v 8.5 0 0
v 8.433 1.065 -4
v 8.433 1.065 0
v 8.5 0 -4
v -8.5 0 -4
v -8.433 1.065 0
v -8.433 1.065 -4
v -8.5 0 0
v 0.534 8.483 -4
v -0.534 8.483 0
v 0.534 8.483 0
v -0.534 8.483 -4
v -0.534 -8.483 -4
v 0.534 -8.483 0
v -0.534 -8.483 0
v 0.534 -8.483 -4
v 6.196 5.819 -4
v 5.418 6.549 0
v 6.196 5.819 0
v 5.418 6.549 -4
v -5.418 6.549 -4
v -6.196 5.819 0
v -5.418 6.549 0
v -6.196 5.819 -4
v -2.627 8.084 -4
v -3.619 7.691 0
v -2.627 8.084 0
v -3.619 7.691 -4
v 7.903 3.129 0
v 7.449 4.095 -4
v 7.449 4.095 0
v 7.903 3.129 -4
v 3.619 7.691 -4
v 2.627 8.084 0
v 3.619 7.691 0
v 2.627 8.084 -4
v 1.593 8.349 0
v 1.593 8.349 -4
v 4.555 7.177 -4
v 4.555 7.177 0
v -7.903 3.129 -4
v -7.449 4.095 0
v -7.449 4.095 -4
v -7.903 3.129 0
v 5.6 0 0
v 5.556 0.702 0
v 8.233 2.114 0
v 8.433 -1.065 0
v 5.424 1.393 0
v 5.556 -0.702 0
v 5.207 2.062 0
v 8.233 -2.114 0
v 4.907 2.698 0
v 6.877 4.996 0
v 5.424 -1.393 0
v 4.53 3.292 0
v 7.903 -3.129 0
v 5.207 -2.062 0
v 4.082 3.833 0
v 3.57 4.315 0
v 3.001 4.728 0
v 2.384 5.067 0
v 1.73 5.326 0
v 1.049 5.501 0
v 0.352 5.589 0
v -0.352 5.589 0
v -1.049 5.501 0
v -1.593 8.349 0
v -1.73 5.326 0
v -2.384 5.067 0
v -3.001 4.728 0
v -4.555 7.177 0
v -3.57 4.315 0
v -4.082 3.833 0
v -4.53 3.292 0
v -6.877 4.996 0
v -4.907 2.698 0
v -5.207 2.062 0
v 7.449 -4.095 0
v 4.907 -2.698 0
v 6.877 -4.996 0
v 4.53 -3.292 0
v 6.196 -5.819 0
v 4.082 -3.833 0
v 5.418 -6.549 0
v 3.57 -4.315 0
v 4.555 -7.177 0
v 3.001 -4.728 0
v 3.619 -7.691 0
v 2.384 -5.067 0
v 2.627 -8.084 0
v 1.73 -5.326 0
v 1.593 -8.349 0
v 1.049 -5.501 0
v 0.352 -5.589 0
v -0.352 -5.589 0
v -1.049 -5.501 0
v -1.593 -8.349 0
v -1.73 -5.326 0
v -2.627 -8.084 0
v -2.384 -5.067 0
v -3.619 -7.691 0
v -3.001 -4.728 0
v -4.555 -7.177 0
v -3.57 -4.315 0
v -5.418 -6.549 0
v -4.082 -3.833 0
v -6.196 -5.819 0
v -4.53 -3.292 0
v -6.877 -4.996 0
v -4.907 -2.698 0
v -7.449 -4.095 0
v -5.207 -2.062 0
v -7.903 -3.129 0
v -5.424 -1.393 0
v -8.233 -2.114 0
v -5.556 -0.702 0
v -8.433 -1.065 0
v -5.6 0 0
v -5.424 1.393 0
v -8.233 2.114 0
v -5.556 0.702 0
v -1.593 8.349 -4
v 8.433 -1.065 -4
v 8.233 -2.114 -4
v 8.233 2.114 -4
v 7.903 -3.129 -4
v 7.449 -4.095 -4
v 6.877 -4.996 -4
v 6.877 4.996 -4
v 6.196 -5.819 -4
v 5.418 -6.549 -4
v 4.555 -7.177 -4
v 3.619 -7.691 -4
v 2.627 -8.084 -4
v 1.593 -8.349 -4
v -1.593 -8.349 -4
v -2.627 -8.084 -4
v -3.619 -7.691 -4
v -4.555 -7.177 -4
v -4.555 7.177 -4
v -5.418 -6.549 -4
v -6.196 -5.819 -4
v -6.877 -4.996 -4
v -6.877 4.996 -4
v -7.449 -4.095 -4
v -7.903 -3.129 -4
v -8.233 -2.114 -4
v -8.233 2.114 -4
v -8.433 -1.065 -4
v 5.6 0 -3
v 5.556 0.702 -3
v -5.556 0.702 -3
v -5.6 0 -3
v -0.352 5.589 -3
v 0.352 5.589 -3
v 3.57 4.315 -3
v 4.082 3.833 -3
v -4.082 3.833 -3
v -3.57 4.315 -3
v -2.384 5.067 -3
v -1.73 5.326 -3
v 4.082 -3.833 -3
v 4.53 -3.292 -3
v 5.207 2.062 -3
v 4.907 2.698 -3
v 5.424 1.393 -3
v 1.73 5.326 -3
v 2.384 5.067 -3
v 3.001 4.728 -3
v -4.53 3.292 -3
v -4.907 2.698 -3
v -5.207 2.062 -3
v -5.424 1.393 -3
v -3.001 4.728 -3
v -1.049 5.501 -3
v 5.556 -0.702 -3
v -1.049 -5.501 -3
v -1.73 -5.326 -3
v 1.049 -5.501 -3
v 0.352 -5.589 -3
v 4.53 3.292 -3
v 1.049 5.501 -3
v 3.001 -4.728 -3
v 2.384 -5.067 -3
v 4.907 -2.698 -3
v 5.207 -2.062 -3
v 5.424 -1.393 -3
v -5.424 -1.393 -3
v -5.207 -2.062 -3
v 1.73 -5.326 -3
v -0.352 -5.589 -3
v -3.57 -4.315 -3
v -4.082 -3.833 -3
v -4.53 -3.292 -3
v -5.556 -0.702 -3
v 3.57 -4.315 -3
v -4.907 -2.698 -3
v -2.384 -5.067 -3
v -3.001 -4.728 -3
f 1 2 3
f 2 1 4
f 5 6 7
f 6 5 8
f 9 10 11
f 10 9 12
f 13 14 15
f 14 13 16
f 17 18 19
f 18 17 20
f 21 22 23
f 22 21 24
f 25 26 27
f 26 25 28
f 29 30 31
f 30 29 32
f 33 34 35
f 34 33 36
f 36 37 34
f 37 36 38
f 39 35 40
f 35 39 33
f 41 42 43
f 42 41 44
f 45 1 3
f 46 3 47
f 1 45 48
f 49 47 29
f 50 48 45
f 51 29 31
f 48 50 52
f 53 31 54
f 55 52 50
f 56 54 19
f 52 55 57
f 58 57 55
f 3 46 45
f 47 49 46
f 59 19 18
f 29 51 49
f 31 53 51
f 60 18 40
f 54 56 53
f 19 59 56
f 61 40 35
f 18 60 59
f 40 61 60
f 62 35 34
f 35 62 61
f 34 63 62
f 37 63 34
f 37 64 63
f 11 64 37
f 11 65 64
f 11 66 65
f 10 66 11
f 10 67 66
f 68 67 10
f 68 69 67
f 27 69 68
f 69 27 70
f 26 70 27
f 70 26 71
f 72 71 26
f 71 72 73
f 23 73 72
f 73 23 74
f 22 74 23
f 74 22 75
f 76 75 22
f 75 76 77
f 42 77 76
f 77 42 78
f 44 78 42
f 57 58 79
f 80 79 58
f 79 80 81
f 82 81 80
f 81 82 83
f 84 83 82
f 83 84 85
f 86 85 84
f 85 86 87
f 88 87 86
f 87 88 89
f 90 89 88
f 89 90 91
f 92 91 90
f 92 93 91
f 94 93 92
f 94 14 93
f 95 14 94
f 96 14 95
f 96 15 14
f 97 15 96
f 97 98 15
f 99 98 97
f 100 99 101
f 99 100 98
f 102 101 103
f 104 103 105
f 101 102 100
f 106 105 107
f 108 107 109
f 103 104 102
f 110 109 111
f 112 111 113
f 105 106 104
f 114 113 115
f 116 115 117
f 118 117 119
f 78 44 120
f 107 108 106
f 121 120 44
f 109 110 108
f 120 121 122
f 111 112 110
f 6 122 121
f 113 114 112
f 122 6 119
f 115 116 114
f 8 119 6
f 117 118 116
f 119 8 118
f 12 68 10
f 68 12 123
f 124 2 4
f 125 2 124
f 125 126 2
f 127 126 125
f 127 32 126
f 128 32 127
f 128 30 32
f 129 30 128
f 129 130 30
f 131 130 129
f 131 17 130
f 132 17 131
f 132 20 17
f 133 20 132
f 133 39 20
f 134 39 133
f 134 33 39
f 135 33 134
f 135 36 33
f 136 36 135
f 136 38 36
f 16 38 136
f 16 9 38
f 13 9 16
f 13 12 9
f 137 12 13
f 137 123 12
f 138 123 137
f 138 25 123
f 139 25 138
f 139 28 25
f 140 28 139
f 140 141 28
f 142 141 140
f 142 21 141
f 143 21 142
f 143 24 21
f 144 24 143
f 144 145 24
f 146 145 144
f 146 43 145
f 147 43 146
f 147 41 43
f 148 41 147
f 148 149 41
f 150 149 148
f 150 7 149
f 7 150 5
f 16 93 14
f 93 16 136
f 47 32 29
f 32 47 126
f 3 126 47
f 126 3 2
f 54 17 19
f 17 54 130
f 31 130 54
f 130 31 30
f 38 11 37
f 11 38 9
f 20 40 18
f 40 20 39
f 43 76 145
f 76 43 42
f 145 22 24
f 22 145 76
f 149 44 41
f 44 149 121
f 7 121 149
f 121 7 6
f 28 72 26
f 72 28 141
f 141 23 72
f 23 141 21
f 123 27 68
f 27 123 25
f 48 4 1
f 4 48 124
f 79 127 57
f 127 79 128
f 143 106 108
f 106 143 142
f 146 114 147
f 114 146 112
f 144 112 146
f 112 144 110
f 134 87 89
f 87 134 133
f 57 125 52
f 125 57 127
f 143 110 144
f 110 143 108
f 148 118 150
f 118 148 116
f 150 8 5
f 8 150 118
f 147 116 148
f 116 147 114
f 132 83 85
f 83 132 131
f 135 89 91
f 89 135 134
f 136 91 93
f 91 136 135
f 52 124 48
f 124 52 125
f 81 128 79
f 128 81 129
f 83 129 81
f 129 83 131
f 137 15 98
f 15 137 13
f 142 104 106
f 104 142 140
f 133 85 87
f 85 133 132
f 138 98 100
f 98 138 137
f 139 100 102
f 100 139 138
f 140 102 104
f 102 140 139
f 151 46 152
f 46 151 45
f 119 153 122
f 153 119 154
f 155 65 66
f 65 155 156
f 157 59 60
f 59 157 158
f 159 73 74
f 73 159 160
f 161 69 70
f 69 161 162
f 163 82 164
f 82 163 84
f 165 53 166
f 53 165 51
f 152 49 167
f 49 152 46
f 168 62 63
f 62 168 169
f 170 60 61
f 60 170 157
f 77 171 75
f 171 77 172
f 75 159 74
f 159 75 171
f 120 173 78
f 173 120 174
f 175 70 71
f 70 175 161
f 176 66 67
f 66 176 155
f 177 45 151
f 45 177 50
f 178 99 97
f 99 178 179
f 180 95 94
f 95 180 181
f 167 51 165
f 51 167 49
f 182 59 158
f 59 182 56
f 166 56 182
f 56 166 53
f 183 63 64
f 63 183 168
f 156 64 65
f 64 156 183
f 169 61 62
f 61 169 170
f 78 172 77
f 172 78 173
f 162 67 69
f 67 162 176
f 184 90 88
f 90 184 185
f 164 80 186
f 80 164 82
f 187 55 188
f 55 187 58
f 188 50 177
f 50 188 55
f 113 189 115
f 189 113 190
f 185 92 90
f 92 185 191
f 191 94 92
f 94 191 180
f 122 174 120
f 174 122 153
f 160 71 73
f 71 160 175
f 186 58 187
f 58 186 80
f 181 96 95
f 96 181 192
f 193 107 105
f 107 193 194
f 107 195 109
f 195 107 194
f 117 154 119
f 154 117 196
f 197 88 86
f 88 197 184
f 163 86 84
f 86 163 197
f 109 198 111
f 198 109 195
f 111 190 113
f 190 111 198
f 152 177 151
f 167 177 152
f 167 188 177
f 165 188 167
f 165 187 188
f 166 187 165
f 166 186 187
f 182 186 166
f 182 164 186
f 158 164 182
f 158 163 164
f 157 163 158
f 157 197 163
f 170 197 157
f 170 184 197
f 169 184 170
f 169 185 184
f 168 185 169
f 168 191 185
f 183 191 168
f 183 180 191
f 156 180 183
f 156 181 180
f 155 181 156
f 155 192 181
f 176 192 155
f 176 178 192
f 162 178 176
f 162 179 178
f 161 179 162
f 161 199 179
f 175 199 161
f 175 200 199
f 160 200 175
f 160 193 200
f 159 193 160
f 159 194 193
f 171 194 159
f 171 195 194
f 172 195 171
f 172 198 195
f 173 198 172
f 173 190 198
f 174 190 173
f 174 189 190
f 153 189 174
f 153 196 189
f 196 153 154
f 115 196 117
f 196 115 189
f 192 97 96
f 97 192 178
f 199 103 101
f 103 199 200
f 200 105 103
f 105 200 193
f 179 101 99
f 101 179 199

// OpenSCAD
$fn = 50;


difference() {
	union() {
		translate(v = [0, 0, -4.0000000000]) {
			cylinder(h = 4, r = 8.5000000000);
		}
	}
	union() {
		#translate(v = [0, 0, -3.0000000000]) {
			cylinder(h = 3, r = 5.6000000000);
		}
	}
}
